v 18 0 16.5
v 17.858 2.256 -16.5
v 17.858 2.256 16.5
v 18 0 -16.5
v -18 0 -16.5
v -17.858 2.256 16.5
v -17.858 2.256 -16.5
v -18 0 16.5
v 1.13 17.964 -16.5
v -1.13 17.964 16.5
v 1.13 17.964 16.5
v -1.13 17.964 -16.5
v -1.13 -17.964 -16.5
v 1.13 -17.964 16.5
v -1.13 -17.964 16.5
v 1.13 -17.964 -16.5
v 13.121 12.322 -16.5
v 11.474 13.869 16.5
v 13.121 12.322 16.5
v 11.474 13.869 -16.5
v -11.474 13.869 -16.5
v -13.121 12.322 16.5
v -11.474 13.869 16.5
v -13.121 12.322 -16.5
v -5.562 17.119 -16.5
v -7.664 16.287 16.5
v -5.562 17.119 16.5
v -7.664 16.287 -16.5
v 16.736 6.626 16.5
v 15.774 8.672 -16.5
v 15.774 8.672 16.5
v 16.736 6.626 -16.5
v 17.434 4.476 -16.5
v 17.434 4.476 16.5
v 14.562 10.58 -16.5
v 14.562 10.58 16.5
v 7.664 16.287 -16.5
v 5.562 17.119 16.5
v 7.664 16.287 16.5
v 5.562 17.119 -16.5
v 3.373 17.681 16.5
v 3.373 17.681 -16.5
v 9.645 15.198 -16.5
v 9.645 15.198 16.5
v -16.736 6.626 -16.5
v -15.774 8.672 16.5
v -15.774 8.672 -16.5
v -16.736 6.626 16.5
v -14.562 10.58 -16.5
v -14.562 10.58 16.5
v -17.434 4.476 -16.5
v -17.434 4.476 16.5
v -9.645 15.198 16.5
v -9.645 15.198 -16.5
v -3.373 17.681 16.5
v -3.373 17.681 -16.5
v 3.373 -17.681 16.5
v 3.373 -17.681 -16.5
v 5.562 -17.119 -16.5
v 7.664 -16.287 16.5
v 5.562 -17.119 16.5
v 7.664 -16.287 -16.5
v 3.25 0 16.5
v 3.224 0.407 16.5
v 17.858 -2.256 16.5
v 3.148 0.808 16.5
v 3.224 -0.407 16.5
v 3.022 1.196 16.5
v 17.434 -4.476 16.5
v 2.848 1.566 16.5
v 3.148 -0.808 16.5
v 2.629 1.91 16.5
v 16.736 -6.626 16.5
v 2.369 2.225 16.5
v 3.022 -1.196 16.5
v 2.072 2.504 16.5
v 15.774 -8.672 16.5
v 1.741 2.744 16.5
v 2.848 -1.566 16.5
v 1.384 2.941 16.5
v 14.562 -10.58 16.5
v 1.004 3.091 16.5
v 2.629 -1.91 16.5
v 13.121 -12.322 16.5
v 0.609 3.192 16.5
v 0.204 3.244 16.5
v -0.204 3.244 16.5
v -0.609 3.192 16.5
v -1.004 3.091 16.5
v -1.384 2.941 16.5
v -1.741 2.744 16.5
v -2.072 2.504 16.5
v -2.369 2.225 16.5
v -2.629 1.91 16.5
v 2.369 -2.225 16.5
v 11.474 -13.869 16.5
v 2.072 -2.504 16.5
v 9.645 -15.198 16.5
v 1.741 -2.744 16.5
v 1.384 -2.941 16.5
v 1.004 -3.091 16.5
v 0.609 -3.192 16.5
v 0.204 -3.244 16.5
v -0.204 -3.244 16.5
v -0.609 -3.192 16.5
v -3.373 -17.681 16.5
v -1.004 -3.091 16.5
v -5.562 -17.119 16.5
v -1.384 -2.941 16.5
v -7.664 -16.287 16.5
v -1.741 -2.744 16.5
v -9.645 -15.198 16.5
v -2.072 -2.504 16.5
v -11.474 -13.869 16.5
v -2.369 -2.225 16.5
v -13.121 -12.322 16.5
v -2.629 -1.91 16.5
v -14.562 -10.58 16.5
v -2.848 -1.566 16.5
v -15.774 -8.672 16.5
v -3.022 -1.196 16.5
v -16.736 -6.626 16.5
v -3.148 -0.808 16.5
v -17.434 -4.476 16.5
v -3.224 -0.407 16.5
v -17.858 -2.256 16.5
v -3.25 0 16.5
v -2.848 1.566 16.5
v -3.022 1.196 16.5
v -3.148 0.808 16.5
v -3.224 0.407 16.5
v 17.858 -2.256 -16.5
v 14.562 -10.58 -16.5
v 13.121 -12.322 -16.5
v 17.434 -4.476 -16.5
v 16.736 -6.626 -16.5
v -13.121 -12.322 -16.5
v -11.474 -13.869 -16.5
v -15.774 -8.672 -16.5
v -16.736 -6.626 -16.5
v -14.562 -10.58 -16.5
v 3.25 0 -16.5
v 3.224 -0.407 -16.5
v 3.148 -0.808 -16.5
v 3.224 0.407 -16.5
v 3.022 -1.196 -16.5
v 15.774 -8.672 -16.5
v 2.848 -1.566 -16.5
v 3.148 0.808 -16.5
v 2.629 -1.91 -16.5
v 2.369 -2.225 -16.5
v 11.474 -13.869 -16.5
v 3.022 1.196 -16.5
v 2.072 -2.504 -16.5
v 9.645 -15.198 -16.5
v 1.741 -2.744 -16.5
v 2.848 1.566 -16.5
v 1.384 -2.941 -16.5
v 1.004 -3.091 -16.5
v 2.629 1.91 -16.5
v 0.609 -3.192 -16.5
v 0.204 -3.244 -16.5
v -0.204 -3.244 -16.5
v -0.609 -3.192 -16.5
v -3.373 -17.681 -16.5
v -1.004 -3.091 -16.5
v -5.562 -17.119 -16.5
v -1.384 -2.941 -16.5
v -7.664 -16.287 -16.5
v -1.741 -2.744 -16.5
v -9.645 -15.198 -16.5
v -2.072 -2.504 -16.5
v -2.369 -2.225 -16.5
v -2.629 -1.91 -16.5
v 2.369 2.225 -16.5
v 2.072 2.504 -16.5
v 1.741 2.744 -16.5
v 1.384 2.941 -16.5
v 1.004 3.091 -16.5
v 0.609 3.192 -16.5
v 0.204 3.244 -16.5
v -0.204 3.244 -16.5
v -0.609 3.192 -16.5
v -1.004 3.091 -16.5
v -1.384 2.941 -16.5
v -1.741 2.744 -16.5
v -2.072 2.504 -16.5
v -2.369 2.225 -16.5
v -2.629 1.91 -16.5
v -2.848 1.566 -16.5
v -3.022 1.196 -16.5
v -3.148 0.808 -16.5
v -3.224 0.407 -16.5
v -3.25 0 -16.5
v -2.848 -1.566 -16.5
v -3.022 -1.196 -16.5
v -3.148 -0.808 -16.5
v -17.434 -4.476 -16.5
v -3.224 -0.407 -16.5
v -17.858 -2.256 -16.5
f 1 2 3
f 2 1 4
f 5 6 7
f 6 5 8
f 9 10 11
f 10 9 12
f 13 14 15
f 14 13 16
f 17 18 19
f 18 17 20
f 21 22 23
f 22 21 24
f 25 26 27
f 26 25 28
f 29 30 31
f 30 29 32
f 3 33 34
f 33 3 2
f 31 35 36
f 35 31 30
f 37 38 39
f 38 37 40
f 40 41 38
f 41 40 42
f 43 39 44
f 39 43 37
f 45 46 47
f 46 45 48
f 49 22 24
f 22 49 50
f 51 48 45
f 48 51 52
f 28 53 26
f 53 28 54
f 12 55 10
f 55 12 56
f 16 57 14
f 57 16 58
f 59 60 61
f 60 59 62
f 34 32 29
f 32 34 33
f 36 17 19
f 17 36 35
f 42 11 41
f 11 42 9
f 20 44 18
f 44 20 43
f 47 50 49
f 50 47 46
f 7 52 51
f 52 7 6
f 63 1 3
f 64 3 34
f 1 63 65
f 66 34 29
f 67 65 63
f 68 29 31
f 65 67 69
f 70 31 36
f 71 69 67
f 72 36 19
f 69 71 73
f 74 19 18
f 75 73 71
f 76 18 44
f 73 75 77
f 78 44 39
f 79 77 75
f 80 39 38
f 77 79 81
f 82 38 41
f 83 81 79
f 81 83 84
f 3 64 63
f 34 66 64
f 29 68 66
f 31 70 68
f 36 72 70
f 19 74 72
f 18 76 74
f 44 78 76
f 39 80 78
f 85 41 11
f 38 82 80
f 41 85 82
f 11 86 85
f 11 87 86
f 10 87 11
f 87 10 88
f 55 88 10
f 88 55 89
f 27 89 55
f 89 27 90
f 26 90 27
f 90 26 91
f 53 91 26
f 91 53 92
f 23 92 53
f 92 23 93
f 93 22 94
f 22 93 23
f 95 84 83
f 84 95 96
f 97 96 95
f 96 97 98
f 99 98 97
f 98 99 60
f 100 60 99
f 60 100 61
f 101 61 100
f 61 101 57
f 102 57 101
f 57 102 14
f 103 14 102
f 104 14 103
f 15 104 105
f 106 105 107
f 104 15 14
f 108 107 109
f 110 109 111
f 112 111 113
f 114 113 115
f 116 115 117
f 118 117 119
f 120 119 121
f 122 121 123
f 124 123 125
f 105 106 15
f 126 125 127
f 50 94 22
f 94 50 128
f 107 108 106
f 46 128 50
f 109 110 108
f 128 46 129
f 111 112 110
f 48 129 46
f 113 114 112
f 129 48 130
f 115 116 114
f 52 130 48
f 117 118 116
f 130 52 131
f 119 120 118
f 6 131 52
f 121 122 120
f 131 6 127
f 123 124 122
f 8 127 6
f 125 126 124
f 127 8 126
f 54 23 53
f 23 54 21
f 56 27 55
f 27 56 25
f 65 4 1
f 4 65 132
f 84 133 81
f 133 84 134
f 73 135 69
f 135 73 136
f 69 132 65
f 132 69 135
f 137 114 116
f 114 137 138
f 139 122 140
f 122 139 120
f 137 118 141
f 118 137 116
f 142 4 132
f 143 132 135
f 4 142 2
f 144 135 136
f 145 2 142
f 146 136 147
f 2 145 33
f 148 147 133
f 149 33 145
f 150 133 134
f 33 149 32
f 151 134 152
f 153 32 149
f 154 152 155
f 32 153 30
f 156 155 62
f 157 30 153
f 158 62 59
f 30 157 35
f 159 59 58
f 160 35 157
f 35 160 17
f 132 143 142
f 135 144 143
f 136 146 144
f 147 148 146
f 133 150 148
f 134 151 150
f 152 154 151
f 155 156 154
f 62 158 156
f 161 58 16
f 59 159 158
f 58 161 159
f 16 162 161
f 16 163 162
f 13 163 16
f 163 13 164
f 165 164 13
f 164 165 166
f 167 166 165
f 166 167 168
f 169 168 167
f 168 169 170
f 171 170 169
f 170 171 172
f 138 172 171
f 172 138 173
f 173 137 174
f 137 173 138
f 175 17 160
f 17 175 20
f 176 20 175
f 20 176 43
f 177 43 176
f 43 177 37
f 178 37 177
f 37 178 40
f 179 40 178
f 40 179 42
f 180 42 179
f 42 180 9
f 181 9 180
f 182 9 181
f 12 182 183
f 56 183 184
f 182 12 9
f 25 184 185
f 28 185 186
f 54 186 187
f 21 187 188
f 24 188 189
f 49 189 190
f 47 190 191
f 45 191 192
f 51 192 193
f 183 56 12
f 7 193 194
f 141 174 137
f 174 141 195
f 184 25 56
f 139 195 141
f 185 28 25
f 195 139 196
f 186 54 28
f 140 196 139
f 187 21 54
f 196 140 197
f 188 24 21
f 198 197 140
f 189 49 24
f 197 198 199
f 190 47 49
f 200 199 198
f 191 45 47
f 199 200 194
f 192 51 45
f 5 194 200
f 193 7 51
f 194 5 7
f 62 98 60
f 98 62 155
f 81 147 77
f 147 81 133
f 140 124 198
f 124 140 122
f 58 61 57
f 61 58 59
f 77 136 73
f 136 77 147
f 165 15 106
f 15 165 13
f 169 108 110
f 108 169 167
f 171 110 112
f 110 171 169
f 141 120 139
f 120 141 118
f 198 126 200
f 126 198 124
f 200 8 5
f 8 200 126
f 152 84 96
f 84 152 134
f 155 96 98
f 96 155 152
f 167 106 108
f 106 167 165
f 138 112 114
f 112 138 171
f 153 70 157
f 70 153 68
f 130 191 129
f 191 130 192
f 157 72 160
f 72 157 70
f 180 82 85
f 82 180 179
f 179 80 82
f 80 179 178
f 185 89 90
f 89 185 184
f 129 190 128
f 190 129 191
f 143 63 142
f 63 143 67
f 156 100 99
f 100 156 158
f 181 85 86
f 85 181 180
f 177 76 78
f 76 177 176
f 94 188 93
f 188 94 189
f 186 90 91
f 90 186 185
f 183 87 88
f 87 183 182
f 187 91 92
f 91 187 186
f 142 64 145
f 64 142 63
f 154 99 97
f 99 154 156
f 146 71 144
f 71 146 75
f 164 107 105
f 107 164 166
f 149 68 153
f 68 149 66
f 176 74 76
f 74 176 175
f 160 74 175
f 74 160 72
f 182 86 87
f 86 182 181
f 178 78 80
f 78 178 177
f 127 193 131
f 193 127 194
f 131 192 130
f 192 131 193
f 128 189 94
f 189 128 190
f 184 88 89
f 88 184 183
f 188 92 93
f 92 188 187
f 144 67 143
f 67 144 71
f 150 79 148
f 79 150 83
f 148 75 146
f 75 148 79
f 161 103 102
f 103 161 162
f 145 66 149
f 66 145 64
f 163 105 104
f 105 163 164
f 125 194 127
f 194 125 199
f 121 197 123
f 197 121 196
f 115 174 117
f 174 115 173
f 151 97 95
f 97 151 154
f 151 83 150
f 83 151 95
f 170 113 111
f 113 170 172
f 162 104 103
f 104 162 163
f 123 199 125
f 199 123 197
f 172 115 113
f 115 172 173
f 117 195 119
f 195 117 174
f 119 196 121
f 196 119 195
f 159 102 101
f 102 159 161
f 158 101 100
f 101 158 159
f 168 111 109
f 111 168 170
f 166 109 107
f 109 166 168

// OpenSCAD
$fn = 50;


difference() {
	union() {
		translate(v = [0, 0, -16.5000000000]) {
			cylinder(h = 33, r = 18.0000000000);
		}
	}
	union() {
		translate(v = [0, 0, -100.0000000000]) {
			cylinder(h = 200, r = 3.2500000000);
		}
	}
}
